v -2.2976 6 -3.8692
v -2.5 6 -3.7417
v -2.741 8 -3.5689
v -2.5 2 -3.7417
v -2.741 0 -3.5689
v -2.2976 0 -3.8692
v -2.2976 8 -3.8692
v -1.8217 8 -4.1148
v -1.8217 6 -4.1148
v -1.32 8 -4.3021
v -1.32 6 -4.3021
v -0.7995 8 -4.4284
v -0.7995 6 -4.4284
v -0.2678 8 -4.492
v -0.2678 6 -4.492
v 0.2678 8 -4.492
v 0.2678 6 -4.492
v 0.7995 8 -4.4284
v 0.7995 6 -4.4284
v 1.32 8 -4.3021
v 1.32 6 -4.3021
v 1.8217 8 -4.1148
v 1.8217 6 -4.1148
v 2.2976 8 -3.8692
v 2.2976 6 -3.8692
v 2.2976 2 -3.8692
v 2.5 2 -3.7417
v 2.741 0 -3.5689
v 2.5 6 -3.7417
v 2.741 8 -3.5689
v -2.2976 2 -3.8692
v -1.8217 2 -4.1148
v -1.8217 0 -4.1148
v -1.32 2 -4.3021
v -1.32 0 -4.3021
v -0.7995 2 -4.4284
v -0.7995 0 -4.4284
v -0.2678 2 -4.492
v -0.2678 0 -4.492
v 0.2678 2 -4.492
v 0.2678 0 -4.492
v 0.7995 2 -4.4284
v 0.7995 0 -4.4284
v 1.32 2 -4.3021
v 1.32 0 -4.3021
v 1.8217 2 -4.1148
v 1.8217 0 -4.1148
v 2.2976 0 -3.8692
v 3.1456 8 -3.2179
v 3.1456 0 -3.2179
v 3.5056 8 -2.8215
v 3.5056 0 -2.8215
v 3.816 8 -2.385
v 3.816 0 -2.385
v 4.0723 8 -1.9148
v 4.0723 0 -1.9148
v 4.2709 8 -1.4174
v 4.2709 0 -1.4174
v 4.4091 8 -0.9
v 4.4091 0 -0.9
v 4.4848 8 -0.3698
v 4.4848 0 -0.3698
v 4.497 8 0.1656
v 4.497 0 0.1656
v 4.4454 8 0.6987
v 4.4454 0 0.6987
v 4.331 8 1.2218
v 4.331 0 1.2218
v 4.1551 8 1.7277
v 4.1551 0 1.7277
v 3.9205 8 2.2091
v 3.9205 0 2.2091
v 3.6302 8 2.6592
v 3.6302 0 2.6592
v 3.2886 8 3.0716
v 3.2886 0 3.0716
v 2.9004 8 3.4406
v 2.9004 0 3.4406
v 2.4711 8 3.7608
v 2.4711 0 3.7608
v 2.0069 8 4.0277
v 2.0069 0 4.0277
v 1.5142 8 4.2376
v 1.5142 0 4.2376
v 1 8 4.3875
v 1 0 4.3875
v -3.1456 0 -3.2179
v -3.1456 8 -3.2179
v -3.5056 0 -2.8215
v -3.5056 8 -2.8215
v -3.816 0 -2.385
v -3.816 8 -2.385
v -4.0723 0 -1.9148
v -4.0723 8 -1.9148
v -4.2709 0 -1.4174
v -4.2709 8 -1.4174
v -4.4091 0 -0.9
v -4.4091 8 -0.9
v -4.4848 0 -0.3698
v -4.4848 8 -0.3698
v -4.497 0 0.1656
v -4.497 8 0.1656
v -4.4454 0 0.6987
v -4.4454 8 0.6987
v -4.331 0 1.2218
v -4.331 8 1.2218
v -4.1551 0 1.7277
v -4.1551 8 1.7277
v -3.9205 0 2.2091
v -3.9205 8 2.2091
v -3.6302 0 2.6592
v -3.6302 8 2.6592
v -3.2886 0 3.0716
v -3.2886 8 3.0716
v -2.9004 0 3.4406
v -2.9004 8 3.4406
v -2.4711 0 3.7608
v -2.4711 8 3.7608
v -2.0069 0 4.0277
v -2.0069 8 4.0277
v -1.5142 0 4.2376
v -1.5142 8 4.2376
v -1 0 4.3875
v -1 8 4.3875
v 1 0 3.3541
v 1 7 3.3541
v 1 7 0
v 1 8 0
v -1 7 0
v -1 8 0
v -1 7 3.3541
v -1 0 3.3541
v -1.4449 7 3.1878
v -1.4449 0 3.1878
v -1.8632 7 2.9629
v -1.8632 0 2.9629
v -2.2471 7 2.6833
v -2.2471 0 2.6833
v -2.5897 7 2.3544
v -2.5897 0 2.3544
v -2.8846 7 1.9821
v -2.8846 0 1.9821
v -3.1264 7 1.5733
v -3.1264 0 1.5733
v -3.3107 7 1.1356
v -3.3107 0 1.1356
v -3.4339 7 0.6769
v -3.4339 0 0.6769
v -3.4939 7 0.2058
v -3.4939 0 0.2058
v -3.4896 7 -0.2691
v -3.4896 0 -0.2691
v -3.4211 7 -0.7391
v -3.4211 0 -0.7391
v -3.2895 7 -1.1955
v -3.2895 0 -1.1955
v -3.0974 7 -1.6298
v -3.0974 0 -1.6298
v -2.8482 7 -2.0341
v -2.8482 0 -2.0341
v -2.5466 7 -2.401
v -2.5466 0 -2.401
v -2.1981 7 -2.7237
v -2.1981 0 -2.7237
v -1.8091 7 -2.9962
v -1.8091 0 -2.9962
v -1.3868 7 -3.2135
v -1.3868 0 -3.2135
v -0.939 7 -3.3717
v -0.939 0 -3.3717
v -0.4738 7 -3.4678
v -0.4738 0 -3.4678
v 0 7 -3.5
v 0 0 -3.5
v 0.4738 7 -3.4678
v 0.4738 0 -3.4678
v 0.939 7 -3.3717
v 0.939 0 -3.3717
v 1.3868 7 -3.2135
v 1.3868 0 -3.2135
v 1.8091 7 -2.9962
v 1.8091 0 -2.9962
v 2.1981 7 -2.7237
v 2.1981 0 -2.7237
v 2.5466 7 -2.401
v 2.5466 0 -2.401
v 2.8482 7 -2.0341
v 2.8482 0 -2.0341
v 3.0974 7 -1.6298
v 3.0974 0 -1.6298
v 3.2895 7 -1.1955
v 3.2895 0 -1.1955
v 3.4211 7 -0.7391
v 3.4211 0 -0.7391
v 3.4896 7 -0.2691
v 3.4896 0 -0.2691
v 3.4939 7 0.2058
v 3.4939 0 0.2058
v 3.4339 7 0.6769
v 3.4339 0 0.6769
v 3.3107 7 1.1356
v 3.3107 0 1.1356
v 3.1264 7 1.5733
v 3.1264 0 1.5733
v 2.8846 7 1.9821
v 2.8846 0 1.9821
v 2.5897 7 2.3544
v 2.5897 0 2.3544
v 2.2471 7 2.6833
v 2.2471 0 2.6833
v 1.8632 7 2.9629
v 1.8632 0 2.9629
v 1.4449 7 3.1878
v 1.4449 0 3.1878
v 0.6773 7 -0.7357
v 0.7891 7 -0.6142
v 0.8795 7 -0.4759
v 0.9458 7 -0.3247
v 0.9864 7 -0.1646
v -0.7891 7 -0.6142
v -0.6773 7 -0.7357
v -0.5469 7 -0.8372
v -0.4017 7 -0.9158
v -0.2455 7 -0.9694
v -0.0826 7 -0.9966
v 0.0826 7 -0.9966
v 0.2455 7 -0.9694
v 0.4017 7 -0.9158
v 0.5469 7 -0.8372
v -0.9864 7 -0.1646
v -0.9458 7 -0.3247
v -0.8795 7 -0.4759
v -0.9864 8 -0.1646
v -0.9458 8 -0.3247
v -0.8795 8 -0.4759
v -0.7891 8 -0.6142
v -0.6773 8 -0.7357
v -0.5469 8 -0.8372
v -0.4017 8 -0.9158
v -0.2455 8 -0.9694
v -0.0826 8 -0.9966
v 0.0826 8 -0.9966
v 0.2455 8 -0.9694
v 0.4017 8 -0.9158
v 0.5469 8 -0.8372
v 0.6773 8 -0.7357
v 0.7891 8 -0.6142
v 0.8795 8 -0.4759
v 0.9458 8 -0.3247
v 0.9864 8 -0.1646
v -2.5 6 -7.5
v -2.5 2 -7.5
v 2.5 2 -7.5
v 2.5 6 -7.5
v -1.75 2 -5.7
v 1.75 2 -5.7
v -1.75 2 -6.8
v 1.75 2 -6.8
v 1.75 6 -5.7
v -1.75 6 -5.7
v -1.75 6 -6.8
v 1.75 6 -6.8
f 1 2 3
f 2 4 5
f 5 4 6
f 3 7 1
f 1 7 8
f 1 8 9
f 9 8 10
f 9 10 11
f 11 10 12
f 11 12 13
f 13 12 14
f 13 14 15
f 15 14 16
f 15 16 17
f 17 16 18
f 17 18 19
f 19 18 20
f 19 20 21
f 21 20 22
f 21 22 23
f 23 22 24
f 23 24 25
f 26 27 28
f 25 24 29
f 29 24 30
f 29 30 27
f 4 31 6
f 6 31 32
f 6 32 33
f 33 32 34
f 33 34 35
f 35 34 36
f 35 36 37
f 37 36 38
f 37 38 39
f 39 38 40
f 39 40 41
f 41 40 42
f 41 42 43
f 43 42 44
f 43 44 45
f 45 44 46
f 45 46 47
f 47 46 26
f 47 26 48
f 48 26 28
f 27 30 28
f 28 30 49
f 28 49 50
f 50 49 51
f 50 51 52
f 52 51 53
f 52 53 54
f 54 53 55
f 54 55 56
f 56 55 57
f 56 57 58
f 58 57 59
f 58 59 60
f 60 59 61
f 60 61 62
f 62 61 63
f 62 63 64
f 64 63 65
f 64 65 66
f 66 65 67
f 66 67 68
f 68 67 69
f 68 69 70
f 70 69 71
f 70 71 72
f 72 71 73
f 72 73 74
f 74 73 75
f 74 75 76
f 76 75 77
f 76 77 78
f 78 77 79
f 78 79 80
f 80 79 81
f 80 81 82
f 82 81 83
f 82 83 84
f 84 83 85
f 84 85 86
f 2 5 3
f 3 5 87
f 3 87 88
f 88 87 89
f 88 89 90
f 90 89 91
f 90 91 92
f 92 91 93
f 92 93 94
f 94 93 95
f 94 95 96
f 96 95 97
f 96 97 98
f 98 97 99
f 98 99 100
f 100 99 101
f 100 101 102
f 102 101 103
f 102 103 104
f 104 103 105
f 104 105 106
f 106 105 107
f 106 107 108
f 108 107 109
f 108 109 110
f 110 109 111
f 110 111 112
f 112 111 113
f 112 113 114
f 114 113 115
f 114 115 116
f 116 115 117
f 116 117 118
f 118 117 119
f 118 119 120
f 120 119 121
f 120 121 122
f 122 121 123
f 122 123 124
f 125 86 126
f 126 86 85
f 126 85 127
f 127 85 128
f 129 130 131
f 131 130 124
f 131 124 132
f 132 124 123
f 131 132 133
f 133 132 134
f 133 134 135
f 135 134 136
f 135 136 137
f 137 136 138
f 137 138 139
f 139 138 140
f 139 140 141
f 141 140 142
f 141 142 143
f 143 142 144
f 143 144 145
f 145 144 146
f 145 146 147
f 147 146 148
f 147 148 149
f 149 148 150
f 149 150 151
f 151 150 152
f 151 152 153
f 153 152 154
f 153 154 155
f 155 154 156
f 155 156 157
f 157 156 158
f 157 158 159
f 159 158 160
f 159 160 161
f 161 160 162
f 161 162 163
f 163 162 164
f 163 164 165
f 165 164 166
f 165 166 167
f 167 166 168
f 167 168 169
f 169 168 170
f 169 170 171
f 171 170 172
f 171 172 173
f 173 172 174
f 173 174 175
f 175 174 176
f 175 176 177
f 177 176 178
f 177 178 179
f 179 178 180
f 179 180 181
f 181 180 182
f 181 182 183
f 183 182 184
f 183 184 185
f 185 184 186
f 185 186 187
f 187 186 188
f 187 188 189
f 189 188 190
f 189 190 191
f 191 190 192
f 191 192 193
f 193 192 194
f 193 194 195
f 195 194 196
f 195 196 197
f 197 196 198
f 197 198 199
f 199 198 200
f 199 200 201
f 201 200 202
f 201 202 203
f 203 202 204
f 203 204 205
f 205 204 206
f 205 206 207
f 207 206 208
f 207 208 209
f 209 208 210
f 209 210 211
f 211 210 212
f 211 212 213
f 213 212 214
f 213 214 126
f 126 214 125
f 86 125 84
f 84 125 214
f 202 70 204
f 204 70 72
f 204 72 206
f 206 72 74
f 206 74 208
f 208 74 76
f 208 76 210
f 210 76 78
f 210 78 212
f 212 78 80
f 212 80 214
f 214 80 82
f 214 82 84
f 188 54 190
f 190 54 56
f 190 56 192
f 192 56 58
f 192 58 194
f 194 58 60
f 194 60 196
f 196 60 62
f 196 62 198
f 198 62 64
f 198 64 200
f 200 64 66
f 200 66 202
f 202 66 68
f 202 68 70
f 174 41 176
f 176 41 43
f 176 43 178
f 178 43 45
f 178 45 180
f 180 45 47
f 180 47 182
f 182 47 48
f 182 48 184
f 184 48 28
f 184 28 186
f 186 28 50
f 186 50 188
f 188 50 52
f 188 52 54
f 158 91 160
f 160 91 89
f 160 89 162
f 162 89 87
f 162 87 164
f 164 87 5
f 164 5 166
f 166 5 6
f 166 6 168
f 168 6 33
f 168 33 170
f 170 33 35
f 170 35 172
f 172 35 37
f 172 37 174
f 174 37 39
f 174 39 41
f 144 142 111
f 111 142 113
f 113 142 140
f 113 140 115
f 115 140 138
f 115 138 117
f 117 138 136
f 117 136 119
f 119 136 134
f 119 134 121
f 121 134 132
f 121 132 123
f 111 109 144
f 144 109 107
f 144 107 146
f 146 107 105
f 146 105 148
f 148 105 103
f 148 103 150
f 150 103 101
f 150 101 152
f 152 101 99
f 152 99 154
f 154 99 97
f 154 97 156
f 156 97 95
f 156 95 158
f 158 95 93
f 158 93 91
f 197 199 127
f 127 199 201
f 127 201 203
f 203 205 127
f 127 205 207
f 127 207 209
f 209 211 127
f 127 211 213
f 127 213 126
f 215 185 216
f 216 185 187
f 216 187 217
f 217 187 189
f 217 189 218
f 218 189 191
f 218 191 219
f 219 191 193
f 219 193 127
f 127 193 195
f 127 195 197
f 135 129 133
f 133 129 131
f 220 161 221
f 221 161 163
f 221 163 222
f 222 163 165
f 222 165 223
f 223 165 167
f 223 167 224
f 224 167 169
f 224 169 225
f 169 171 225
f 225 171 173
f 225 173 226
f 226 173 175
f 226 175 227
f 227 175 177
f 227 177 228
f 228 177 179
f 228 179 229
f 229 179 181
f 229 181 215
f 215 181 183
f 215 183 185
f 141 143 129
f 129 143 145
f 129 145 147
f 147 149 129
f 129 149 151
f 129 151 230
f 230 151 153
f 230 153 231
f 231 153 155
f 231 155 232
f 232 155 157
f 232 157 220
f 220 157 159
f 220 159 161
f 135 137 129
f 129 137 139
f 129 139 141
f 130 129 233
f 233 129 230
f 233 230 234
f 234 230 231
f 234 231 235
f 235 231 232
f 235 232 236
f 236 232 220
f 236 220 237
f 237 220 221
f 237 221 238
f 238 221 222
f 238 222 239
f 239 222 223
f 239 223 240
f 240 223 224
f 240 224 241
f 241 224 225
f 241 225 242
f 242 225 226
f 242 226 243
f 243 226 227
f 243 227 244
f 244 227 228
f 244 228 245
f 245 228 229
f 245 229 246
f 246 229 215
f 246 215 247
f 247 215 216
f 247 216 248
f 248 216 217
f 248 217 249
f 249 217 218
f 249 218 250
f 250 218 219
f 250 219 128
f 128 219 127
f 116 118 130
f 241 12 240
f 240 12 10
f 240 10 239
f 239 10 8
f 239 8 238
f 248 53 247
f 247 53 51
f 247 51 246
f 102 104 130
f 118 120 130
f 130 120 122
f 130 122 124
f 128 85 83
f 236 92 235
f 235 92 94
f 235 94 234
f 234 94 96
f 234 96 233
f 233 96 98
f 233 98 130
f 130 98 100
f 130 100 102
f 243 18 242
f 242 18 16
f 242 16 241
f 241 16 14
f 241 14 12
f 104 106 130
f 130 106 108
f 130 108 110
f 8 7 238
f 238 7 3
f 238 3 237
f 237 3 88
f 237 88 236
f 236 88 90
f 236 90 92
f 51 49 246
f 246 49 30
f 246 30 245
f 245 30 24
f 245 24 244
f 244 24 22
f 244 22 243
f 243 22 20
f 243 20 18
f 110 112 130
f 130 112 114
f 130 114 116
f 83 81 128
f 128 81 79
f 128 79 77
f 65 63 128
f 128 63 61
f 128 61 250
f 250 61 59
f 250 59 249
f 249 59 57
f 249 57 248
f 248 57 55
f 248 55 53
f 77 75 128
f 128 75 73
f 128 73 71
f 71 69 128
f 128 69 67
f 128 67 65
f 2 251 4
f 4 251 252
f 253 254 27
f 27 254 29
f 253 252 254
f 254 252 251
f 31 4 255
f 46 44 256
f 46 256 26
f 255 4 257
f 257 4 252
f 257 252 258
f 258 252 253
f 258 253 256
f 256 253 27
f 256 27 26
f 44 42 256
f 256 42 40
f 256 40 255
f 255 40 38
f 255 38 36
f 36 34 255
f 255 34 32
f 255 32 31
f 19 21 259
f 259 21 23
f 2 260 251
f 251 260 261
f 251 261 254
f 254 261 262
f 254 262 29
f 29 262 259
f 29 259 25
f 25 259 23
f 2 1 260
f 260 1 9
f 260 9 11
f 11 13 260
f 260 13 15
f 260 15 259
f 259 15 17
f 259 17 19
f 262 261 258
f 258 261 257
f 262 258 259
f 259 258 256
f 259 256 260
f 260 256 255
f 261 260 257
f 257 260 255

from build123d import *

# Parameters (mm, degrees)
BOSS_EXTRUDE1_DEPTH      = 7
BOSS_EXTRUDE2_DEPTH      = 1
BOSS_EXTRUDE3_DEPTH      = 2.5
BOSS_EXTRUDE3_DEPTH_BACK = 2.5
CUT_EXTRUDE1_DEPTH       = 7


with BuildPart() as part:
    # Sketch1 → Boss-Extrude1 (new body)
    with BuildSketch(Plane(origin=(0, 0, 0), x_dir=(1, 0, 0), z_dir=(0, 1, 0))):
        with BuildLine():
            Line((-1, -4.387482194), (-1, -3.354101966))
            ThreePointArc((-1, -3.354101966), (-2.091650066, 2.80624304), (3.5, 0))
            ThreePointArc((3.5, 0), (2.80624304, -2.091650066), (1, -3.354101966))
            Line((1, -3.354101966), (1, -4.387482194))
            ThreePointArc((1, -4.387482194), (3.51781182, -2.80624304), (4.5, 0))
            ThreePointArc((4.5, 0), (-2.80624304, 3.51781182), (-1, -4.387482194))
        make_face()
    extrude(amount=BOSS_EXTRUDE1_DEPTH)

    # Sketch2 → Boss-Extrude2 (add)
    with BuildSketch(Plane(origin=(0, 7, 0), x_dir=(1, 0, 0), z_dir=(0, 1, 0))):
        with BuildLine():
            Line((-1, -3.354101966), (-1, 0))
            ThreePointArc((-1, 0), (0, 1), (1, 0))
            Line((1, 0), (1, -3.354101966))
            ThreePointArc((1, -3.354101966), (0, 3.5), (-1, -3.354101966))
        make_face()
        with BuildLine():
            ThreePointArc((-1, -3.354101966), (0, 3.5), (1, -3.354101966))
            Line((1, -3.354101966), (1, -4.387482194))
            ThreePointArc((1, -4.387482194), (0, 4.5), (-1, -4.387482194))
            Line((-1, -4.387482194), (-1, -3.354101966))
        make_face()
    extrude(amount=BOSS_EXTRUDE2_DEPTH)

    # Sketch3 → Boss-Extrude3 (add, two sides: drawn at the far end of the back side and taken through both)
    with BuildSketch(Plane(origin=(0, 0, 0), x_dir=(0, 0, -1), z_dir=(1, 0, 0)).offset(-BOSS_EXTRUDE3_DEPTH_BACK)):
        Polygon((7.5, 6), (4.5, 6), (3.5, 6), (3.5, 2), (7.5, 2), align=None)
    extrude(amount=BOSS_EXTRUDE3_DEPTH + BOSS_EXTRUDE3_DEPTH_BACK)

    # Sketch4 → Cut-Extrude1 (cut)
    with BuildSketch(Plane(origin=(0, 6, 0), x_dir=(1, 0, 0), z_dir=(0, 1, 0))):
        Polygon((1.75, 6.8), (0, 6.8), (-1.75, 6.8), (-1.75, 5.7), (1.75, 5.7), align=None)
    extrude(amount=-CUT_EXTRUDE1_DEPTH, mode=Mode.SUBTRACT)


solid = part.part
